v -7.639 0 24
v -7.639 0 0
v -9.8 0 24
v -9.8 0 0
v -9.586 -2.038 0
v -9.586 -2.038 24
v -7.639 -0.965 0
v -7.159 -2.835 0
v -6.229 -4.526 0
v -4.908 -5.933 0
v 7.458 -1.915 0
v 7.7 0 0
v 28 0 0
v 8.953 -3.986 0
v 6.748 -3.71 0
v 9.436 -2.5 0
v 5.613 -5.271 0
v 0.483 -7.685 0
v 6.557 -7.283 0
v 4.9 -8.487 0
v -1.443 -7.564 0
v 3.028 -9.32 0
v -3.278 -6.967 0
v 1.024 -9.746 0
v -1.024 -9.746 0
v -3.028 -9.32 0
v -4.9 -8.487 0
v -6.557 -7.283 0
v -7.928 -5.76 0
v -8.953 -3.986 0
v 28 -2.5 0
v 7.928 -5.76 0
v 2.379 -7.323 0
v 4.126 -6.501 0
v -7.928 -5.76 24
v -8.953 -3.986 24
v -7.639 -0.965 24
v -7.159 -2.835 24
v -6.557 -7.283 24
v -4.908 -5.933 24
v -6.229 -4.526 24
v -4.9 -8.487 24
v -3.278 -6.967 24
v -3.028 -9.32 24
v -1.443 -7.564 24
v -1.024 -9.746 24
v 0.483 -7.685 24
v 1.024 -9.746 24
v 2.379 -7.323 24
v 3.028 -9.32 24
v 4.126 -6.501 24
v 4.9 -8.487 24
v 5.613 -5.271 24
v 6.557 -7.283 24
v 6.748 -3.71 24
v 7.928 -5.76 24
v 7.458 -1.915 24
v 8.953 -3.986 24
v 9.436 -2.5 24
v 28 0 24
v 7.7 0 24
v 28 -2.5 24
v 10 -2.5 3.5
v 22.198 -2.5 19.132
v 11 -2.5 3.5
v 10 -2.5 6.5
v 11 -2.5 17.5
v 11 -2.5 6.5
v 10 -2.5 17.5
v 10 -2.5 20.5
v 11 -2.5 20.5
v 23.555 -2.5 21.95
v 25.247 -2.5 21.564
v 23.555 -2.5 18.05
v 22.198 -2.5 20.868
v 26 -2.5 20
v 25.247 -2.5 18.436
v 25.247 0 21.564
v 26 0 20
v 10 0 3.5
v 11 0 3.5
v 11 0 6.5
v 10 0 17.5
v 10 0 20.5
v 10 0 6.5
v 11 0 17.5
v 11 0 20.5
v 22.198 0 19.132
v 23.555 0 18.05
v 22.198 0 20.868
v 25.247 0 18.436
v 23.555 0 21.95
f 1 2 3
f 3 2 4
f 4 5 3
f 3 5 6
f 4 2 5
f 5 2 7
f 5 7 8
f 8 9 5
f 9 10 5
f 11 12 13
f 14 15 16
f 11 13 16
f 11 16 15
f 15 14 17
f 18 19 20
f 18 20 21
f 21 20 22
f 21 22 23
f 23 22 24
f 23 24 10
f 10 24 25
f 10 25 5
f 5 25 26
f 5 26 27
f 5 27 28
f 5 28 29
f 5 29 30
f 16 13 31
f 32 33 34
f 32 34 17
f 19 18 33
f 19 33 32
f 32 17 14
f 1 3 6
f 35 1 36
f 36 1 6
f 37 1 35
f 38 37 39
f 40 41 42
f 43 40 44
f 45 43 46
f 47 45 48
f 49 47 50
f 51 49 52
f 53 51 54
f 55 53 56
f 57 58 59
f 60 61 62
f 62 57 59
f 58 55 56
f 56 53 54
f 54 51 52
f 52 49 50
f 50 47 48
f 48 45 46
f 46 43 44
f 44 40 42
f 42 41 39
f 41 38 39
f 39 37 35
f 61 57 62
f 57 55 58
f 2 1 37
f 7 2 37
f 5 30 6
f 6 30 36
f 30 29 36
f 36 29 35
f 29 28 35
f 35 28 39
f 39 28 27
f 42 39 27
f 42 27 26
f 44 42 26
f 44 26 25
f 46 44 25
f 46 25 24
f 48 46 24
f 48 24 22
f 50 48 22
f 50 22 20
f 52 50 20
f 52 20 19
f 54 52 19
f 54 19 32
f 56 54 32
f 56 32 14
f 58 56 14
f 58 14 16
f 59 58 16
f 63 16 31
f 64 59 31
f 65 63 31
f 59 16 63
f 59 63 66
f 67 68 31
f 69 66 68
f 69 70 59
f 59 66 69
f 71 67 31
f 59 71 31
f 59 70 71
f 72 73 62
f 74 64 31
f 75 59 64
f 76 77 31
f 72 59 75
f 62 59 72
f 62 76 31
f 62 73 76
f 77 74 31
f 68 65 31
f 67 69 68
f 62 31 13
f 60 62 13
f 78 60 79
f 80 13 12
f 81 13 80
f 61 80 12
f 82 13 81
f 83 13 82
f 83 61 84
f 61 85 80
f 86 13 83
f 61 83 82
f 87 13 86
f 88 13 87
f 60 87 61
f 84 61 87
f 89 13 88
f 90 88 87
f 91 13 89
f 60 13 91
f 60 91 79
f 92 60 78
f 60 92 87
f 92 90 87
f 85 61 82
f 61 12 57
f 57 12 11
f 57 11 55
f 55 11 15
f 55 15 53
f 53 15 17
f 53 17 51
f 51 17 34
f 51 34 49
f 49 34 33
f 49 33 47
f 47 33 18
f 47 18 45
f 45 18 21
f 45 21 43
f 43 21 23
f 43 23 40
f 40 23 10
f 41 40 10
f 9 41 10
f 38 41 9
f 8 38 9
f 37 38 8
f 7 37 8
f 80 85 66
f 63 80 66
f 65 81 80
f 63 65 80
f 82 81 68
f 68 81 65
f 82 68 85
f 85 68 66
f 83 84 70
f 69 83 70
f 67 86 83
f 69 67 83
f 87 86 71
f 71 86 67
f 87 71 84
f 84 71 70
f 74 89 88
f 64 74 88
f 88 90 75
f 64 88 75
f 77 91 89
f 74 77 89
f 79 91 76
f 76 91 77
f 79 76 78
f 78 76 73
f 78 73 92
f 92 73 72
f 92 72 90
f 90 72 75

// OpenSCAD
//coulisseau

difference() {
	union() {
		translate([0,-2.5,0]) cube([28,5,24]);
		translate([0,0,12]) cylinder(r=9.8,h=24,center=true);
	}
translate([0,0,12]) cylinder(r=7.7,h=32,center=true);
translate([-10,-0,-2]) cube([40,20,32]);
translate([10,-5,3.5]) cube([1,10,3]);
translate([10,-5,17.5]) cube([1,10,3]);

translate([24,6,20]) rotate([90,0,0]) cylinder(r=2,h=10); //trou fil
}
